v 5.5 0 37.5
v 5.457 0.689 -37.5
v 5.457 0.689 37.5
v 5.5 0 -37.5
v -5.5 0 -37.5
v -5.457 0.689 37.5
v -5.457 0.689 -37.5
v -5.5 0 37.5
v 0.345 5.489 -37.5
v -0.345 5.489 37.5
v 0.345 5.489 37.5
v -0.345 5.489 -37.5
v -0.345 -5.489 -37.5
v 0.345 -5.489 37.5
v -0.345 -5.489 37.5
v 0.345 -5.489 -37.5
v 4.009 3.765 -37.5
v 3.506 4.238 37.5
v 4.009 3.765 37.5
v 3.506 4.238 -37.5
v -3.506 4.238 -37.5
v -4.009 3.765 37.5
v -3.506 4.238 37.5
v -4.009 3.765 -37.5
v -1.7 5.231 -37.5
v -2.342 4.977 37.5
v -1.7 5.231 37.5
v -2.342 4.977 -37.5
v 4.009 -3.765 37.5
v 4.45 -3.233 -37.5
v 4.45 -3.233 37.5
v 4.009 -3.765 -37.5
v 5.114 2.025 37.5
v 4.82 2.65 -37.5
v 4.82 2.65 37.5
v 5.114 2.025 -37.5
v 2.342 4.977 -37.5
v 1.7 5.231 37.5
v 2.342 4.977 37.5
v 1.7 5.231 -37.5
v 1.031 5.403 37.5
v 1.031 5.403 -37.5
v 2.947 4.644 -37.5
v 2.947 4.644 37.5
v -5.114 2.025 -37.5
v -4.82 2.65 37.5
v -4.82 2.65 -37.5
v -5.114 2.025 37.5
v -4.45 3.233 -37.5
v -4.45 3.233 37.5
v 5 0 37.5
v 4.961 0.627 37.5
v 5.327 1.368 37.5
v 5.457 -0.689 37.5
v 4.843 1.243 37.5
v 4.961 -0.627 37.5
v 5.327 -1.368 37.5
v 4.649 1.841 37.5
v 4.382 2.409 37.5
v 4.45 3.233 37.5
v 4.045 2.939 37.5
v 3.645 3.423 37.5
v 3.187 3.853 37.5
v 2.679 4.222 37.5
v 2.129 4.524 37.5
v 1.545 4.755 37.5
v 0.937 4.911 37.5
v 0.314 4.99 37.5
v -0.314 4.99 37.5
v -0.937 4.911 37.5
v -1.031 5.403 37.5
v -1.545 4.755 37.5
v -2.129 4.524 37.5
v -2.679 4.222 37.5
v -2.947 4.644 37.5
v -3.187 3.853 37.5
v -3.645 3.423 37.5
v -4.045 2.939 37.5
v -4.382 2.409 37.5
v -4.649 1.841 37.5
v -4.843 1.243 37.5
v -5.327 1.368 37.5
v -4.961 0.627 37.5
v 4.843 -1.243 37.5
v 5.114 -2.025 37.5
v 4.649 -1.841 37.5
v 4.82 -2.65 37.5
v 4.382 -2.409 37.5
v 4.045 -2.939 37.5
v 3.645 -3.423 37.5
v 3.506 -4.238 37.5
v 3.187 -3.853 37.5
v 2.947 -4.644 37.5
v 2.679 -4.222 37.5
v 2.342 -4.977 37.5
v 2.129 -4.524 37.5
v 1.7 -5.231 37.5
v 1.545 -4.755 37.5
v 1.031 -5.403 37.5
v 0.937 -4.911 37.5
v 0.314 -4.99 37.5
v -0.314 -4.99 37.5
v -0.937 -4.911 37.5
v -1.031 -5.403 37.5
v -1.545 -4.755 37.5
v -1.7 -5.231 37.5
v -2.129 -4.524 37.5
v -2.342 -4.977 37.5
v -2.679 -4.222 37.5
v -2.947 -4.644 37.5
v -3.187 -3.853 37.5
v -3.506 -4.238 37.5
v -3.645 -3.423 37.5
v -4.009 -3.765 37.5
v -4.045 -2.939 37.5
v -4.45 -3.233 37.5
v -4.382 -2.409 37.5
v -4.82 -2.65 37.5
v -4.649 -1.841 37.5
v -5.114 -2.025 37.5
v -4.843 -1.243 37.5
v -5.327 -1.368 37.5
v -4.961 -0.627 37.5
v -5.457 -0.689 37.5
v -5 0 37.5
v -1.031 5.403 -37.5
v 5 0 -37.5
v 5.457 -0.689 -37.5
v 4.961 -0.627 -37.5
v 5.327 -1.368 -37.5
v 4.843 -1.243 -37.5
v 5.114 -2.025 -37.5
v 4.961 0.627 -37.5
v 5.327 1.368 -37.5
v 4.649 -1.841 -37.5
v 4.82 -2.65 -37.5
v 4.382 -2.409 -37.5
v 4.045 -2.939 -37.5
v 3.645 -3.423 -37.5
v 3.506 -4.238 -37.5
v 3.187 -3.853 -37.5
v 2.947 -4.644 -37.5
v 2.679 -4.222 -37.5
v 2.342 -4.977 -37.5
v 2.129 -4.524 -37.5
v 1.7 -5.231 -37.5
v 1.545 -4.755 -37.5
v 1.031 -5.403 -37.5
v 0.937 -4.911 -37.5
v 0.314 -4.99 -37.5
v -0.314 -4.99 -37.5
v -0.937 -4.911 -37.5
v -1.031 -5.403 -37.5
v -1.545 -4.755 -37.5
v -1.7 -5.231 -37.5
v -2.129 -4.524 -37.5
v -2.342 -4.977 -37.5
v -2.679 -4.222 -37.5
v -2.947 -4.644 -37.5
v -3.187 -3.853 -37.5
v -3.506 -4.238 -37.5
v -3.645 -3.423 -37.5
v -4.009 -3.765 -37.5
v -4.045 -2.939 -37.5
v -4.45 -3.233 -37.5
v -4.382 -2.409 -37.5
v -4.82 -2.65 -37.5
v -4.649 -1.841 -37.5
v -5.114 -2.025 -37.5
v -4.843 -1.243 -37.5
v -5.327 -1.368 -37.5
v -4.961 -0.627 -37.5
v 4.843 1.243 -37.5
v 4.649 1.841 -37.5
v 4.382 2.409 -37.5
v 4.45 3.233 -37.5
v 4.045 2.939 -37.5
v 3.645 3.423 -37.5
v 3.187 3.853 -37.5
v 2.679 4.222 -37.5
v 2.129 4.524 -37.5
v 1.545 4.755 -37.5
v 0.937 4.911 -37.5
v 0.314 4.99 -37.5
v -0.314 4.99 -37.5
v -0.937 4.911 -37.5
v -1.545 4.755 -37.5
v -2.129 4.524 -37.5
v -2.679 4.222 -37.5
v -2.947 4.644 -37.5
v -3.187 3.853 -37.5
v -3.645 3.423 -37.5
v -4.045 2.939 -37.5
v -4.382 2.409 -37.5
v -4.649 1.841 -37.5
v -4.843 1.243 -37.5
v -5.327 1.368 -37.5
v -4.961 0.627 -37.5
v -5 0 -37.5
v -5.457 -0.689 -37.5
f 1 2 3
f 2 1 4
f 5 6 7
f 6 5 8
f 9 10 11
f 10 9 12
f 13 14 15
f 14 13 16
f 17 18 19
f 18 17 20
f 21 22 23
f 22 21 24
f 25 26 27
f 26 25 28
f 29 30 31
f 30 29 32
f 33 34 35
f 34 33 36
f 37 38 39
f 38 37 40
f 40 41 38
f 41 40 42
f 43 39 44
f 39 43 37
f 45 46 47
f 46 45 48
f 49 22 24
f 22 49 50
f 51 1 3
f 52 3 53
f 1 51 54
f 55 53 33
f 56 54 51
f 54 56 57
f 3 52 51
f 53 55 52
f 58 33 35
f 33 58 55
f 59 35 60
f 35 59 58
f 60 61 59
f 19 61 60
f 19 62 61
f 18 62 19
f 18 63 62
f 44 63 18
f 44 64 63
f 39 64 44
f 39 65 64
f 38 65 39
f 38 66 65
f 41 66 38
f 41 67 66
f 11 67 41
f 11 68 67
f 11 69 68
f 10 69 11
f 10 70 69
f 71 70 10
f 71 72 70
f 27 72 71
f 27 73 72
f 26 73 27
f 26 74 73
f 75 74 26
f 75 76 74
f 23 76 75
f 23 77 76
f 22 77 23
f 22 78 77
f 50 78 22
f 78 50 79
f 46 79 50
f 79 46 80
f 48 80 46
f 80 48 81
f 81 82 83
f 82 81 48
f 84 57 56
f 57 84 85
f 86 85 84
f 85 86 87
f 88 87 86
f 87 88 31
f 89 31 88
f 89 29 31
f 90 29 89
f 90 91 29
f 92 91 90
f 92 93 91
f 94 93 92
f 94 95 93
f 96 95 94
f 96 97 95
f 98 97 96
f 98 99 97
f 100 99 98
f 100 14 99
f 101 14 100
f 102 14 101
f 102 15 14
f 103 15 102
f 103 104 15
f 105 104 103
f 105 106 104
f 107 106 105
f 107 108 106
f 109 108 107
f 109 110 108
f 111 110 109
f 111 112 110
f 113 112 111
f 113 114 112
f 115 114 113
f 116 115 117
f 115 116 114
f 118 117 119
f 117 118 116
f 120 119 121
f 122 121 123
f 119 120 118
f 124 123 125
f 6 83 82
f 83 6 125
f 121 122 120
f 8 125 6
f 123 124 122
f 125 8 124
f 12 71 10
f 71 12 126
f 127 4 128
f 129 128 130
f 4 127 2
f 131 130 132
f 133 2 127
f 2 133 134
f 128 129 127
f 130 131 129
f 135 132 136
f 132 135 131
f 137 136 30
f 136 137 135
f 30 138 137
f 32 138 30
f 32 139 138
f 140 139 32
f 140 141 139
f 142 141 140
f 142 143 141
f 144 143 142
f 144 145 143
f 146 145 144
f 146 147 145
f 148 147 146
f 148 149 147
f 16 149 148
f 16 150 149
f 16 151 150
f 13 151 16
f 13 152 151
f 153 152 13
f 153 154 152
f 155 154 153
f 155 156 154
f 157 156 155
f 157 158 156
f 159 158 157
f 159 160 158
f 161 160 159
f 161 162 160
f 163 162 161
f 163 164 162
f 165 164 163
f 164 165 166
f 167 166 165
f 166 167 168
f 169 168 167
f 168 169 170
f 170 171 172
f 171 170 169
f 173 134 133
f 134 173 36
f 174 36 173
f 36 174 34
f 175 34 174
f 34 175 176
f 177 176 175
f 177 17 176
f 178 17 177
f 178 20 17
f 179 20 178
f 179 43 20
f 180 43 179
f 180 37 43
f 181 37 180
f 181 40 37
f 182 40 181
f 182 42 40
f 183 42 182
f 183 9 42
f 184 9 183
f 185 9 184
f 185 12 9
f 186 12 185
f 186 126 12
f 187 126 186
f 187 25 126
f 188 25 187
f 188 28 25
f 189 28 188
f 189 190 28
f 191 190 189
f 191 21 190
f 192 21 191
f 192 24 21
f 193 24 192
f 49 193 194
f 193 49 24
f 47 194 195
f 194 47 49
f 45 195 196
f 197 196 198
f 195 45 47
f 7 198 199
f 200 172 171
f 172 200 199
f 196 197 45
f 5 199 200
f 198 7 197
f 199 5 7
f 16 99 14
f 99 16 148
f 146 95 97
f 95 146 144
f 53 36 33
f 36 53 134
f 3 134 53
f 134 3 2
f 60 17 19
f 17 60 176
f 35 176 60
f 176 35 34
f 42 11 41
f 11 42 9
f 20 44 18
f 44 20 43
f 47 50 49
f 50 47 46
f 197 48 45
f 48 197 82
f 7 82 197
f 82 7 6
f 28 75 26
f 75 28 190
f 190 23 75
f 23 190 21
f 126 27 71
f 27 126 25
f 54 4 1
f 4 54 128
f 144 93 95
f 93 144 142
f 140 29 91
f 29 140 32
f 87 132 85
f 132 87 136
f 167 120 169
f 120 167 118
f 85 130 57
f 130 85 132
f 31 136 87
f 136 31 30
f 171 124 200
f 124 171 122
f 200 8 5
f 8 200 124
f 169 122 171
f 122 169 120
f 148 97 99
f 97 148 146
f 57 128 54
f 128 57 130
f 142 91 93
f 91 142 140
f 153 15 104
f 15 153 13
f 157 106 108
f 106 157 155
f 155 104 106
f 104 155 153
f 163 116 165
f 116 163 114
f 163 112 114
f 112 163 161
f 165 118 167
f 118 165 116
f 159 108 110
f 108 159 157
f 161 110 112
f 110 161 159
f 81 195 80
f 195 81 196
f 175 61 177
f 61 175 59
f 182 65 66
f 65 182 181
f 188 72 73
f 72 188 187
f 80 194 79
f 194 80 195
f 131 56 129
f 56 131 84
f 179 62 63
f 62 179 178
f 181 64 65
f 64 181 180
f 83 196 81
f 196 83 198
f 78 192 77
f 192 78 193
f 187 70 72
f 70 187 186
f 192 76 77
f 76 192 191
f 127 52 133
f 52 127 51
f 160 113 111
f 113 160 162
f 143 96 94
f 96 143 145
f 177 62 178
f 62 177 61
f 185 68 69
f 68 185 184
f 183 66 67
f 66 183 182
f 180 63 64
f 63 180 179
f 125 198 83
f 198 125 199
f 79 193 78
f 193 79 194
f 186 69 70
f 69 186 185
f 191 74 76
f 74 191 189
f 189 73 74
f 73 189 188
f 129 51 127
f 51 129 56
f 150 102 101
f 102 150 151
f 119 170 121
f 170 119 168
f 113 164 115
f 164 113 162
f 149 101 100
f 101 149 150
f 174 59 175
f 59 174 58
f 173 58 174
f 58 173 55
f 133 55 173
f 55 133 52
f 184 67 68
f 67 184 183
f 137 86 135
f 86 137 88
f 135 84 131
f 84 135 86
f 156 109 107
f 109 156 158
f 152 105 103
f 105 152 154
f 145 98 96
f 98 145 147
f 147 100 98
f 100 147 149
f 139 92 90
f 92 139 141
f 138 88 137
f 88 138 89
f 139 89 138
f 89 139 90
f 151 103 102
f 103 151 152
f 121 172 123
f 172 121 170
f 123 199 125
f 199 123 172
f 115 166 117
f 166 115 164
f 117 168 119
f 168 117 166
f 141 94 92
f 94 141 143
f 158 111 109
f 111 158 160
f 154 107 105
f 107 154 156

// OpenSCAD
$fn = 50;


difference() {
	union() {
		translate(v = [0, 0, -37.5000000000]) {
			cylinder(h = 75, r = 5.5000000000);
		}
	}
	union() {
		translate(v = [0, 0, -100.0000000000]) {
			cylinder(h = 200, r = 5.0000000000);
		}
	}
}
